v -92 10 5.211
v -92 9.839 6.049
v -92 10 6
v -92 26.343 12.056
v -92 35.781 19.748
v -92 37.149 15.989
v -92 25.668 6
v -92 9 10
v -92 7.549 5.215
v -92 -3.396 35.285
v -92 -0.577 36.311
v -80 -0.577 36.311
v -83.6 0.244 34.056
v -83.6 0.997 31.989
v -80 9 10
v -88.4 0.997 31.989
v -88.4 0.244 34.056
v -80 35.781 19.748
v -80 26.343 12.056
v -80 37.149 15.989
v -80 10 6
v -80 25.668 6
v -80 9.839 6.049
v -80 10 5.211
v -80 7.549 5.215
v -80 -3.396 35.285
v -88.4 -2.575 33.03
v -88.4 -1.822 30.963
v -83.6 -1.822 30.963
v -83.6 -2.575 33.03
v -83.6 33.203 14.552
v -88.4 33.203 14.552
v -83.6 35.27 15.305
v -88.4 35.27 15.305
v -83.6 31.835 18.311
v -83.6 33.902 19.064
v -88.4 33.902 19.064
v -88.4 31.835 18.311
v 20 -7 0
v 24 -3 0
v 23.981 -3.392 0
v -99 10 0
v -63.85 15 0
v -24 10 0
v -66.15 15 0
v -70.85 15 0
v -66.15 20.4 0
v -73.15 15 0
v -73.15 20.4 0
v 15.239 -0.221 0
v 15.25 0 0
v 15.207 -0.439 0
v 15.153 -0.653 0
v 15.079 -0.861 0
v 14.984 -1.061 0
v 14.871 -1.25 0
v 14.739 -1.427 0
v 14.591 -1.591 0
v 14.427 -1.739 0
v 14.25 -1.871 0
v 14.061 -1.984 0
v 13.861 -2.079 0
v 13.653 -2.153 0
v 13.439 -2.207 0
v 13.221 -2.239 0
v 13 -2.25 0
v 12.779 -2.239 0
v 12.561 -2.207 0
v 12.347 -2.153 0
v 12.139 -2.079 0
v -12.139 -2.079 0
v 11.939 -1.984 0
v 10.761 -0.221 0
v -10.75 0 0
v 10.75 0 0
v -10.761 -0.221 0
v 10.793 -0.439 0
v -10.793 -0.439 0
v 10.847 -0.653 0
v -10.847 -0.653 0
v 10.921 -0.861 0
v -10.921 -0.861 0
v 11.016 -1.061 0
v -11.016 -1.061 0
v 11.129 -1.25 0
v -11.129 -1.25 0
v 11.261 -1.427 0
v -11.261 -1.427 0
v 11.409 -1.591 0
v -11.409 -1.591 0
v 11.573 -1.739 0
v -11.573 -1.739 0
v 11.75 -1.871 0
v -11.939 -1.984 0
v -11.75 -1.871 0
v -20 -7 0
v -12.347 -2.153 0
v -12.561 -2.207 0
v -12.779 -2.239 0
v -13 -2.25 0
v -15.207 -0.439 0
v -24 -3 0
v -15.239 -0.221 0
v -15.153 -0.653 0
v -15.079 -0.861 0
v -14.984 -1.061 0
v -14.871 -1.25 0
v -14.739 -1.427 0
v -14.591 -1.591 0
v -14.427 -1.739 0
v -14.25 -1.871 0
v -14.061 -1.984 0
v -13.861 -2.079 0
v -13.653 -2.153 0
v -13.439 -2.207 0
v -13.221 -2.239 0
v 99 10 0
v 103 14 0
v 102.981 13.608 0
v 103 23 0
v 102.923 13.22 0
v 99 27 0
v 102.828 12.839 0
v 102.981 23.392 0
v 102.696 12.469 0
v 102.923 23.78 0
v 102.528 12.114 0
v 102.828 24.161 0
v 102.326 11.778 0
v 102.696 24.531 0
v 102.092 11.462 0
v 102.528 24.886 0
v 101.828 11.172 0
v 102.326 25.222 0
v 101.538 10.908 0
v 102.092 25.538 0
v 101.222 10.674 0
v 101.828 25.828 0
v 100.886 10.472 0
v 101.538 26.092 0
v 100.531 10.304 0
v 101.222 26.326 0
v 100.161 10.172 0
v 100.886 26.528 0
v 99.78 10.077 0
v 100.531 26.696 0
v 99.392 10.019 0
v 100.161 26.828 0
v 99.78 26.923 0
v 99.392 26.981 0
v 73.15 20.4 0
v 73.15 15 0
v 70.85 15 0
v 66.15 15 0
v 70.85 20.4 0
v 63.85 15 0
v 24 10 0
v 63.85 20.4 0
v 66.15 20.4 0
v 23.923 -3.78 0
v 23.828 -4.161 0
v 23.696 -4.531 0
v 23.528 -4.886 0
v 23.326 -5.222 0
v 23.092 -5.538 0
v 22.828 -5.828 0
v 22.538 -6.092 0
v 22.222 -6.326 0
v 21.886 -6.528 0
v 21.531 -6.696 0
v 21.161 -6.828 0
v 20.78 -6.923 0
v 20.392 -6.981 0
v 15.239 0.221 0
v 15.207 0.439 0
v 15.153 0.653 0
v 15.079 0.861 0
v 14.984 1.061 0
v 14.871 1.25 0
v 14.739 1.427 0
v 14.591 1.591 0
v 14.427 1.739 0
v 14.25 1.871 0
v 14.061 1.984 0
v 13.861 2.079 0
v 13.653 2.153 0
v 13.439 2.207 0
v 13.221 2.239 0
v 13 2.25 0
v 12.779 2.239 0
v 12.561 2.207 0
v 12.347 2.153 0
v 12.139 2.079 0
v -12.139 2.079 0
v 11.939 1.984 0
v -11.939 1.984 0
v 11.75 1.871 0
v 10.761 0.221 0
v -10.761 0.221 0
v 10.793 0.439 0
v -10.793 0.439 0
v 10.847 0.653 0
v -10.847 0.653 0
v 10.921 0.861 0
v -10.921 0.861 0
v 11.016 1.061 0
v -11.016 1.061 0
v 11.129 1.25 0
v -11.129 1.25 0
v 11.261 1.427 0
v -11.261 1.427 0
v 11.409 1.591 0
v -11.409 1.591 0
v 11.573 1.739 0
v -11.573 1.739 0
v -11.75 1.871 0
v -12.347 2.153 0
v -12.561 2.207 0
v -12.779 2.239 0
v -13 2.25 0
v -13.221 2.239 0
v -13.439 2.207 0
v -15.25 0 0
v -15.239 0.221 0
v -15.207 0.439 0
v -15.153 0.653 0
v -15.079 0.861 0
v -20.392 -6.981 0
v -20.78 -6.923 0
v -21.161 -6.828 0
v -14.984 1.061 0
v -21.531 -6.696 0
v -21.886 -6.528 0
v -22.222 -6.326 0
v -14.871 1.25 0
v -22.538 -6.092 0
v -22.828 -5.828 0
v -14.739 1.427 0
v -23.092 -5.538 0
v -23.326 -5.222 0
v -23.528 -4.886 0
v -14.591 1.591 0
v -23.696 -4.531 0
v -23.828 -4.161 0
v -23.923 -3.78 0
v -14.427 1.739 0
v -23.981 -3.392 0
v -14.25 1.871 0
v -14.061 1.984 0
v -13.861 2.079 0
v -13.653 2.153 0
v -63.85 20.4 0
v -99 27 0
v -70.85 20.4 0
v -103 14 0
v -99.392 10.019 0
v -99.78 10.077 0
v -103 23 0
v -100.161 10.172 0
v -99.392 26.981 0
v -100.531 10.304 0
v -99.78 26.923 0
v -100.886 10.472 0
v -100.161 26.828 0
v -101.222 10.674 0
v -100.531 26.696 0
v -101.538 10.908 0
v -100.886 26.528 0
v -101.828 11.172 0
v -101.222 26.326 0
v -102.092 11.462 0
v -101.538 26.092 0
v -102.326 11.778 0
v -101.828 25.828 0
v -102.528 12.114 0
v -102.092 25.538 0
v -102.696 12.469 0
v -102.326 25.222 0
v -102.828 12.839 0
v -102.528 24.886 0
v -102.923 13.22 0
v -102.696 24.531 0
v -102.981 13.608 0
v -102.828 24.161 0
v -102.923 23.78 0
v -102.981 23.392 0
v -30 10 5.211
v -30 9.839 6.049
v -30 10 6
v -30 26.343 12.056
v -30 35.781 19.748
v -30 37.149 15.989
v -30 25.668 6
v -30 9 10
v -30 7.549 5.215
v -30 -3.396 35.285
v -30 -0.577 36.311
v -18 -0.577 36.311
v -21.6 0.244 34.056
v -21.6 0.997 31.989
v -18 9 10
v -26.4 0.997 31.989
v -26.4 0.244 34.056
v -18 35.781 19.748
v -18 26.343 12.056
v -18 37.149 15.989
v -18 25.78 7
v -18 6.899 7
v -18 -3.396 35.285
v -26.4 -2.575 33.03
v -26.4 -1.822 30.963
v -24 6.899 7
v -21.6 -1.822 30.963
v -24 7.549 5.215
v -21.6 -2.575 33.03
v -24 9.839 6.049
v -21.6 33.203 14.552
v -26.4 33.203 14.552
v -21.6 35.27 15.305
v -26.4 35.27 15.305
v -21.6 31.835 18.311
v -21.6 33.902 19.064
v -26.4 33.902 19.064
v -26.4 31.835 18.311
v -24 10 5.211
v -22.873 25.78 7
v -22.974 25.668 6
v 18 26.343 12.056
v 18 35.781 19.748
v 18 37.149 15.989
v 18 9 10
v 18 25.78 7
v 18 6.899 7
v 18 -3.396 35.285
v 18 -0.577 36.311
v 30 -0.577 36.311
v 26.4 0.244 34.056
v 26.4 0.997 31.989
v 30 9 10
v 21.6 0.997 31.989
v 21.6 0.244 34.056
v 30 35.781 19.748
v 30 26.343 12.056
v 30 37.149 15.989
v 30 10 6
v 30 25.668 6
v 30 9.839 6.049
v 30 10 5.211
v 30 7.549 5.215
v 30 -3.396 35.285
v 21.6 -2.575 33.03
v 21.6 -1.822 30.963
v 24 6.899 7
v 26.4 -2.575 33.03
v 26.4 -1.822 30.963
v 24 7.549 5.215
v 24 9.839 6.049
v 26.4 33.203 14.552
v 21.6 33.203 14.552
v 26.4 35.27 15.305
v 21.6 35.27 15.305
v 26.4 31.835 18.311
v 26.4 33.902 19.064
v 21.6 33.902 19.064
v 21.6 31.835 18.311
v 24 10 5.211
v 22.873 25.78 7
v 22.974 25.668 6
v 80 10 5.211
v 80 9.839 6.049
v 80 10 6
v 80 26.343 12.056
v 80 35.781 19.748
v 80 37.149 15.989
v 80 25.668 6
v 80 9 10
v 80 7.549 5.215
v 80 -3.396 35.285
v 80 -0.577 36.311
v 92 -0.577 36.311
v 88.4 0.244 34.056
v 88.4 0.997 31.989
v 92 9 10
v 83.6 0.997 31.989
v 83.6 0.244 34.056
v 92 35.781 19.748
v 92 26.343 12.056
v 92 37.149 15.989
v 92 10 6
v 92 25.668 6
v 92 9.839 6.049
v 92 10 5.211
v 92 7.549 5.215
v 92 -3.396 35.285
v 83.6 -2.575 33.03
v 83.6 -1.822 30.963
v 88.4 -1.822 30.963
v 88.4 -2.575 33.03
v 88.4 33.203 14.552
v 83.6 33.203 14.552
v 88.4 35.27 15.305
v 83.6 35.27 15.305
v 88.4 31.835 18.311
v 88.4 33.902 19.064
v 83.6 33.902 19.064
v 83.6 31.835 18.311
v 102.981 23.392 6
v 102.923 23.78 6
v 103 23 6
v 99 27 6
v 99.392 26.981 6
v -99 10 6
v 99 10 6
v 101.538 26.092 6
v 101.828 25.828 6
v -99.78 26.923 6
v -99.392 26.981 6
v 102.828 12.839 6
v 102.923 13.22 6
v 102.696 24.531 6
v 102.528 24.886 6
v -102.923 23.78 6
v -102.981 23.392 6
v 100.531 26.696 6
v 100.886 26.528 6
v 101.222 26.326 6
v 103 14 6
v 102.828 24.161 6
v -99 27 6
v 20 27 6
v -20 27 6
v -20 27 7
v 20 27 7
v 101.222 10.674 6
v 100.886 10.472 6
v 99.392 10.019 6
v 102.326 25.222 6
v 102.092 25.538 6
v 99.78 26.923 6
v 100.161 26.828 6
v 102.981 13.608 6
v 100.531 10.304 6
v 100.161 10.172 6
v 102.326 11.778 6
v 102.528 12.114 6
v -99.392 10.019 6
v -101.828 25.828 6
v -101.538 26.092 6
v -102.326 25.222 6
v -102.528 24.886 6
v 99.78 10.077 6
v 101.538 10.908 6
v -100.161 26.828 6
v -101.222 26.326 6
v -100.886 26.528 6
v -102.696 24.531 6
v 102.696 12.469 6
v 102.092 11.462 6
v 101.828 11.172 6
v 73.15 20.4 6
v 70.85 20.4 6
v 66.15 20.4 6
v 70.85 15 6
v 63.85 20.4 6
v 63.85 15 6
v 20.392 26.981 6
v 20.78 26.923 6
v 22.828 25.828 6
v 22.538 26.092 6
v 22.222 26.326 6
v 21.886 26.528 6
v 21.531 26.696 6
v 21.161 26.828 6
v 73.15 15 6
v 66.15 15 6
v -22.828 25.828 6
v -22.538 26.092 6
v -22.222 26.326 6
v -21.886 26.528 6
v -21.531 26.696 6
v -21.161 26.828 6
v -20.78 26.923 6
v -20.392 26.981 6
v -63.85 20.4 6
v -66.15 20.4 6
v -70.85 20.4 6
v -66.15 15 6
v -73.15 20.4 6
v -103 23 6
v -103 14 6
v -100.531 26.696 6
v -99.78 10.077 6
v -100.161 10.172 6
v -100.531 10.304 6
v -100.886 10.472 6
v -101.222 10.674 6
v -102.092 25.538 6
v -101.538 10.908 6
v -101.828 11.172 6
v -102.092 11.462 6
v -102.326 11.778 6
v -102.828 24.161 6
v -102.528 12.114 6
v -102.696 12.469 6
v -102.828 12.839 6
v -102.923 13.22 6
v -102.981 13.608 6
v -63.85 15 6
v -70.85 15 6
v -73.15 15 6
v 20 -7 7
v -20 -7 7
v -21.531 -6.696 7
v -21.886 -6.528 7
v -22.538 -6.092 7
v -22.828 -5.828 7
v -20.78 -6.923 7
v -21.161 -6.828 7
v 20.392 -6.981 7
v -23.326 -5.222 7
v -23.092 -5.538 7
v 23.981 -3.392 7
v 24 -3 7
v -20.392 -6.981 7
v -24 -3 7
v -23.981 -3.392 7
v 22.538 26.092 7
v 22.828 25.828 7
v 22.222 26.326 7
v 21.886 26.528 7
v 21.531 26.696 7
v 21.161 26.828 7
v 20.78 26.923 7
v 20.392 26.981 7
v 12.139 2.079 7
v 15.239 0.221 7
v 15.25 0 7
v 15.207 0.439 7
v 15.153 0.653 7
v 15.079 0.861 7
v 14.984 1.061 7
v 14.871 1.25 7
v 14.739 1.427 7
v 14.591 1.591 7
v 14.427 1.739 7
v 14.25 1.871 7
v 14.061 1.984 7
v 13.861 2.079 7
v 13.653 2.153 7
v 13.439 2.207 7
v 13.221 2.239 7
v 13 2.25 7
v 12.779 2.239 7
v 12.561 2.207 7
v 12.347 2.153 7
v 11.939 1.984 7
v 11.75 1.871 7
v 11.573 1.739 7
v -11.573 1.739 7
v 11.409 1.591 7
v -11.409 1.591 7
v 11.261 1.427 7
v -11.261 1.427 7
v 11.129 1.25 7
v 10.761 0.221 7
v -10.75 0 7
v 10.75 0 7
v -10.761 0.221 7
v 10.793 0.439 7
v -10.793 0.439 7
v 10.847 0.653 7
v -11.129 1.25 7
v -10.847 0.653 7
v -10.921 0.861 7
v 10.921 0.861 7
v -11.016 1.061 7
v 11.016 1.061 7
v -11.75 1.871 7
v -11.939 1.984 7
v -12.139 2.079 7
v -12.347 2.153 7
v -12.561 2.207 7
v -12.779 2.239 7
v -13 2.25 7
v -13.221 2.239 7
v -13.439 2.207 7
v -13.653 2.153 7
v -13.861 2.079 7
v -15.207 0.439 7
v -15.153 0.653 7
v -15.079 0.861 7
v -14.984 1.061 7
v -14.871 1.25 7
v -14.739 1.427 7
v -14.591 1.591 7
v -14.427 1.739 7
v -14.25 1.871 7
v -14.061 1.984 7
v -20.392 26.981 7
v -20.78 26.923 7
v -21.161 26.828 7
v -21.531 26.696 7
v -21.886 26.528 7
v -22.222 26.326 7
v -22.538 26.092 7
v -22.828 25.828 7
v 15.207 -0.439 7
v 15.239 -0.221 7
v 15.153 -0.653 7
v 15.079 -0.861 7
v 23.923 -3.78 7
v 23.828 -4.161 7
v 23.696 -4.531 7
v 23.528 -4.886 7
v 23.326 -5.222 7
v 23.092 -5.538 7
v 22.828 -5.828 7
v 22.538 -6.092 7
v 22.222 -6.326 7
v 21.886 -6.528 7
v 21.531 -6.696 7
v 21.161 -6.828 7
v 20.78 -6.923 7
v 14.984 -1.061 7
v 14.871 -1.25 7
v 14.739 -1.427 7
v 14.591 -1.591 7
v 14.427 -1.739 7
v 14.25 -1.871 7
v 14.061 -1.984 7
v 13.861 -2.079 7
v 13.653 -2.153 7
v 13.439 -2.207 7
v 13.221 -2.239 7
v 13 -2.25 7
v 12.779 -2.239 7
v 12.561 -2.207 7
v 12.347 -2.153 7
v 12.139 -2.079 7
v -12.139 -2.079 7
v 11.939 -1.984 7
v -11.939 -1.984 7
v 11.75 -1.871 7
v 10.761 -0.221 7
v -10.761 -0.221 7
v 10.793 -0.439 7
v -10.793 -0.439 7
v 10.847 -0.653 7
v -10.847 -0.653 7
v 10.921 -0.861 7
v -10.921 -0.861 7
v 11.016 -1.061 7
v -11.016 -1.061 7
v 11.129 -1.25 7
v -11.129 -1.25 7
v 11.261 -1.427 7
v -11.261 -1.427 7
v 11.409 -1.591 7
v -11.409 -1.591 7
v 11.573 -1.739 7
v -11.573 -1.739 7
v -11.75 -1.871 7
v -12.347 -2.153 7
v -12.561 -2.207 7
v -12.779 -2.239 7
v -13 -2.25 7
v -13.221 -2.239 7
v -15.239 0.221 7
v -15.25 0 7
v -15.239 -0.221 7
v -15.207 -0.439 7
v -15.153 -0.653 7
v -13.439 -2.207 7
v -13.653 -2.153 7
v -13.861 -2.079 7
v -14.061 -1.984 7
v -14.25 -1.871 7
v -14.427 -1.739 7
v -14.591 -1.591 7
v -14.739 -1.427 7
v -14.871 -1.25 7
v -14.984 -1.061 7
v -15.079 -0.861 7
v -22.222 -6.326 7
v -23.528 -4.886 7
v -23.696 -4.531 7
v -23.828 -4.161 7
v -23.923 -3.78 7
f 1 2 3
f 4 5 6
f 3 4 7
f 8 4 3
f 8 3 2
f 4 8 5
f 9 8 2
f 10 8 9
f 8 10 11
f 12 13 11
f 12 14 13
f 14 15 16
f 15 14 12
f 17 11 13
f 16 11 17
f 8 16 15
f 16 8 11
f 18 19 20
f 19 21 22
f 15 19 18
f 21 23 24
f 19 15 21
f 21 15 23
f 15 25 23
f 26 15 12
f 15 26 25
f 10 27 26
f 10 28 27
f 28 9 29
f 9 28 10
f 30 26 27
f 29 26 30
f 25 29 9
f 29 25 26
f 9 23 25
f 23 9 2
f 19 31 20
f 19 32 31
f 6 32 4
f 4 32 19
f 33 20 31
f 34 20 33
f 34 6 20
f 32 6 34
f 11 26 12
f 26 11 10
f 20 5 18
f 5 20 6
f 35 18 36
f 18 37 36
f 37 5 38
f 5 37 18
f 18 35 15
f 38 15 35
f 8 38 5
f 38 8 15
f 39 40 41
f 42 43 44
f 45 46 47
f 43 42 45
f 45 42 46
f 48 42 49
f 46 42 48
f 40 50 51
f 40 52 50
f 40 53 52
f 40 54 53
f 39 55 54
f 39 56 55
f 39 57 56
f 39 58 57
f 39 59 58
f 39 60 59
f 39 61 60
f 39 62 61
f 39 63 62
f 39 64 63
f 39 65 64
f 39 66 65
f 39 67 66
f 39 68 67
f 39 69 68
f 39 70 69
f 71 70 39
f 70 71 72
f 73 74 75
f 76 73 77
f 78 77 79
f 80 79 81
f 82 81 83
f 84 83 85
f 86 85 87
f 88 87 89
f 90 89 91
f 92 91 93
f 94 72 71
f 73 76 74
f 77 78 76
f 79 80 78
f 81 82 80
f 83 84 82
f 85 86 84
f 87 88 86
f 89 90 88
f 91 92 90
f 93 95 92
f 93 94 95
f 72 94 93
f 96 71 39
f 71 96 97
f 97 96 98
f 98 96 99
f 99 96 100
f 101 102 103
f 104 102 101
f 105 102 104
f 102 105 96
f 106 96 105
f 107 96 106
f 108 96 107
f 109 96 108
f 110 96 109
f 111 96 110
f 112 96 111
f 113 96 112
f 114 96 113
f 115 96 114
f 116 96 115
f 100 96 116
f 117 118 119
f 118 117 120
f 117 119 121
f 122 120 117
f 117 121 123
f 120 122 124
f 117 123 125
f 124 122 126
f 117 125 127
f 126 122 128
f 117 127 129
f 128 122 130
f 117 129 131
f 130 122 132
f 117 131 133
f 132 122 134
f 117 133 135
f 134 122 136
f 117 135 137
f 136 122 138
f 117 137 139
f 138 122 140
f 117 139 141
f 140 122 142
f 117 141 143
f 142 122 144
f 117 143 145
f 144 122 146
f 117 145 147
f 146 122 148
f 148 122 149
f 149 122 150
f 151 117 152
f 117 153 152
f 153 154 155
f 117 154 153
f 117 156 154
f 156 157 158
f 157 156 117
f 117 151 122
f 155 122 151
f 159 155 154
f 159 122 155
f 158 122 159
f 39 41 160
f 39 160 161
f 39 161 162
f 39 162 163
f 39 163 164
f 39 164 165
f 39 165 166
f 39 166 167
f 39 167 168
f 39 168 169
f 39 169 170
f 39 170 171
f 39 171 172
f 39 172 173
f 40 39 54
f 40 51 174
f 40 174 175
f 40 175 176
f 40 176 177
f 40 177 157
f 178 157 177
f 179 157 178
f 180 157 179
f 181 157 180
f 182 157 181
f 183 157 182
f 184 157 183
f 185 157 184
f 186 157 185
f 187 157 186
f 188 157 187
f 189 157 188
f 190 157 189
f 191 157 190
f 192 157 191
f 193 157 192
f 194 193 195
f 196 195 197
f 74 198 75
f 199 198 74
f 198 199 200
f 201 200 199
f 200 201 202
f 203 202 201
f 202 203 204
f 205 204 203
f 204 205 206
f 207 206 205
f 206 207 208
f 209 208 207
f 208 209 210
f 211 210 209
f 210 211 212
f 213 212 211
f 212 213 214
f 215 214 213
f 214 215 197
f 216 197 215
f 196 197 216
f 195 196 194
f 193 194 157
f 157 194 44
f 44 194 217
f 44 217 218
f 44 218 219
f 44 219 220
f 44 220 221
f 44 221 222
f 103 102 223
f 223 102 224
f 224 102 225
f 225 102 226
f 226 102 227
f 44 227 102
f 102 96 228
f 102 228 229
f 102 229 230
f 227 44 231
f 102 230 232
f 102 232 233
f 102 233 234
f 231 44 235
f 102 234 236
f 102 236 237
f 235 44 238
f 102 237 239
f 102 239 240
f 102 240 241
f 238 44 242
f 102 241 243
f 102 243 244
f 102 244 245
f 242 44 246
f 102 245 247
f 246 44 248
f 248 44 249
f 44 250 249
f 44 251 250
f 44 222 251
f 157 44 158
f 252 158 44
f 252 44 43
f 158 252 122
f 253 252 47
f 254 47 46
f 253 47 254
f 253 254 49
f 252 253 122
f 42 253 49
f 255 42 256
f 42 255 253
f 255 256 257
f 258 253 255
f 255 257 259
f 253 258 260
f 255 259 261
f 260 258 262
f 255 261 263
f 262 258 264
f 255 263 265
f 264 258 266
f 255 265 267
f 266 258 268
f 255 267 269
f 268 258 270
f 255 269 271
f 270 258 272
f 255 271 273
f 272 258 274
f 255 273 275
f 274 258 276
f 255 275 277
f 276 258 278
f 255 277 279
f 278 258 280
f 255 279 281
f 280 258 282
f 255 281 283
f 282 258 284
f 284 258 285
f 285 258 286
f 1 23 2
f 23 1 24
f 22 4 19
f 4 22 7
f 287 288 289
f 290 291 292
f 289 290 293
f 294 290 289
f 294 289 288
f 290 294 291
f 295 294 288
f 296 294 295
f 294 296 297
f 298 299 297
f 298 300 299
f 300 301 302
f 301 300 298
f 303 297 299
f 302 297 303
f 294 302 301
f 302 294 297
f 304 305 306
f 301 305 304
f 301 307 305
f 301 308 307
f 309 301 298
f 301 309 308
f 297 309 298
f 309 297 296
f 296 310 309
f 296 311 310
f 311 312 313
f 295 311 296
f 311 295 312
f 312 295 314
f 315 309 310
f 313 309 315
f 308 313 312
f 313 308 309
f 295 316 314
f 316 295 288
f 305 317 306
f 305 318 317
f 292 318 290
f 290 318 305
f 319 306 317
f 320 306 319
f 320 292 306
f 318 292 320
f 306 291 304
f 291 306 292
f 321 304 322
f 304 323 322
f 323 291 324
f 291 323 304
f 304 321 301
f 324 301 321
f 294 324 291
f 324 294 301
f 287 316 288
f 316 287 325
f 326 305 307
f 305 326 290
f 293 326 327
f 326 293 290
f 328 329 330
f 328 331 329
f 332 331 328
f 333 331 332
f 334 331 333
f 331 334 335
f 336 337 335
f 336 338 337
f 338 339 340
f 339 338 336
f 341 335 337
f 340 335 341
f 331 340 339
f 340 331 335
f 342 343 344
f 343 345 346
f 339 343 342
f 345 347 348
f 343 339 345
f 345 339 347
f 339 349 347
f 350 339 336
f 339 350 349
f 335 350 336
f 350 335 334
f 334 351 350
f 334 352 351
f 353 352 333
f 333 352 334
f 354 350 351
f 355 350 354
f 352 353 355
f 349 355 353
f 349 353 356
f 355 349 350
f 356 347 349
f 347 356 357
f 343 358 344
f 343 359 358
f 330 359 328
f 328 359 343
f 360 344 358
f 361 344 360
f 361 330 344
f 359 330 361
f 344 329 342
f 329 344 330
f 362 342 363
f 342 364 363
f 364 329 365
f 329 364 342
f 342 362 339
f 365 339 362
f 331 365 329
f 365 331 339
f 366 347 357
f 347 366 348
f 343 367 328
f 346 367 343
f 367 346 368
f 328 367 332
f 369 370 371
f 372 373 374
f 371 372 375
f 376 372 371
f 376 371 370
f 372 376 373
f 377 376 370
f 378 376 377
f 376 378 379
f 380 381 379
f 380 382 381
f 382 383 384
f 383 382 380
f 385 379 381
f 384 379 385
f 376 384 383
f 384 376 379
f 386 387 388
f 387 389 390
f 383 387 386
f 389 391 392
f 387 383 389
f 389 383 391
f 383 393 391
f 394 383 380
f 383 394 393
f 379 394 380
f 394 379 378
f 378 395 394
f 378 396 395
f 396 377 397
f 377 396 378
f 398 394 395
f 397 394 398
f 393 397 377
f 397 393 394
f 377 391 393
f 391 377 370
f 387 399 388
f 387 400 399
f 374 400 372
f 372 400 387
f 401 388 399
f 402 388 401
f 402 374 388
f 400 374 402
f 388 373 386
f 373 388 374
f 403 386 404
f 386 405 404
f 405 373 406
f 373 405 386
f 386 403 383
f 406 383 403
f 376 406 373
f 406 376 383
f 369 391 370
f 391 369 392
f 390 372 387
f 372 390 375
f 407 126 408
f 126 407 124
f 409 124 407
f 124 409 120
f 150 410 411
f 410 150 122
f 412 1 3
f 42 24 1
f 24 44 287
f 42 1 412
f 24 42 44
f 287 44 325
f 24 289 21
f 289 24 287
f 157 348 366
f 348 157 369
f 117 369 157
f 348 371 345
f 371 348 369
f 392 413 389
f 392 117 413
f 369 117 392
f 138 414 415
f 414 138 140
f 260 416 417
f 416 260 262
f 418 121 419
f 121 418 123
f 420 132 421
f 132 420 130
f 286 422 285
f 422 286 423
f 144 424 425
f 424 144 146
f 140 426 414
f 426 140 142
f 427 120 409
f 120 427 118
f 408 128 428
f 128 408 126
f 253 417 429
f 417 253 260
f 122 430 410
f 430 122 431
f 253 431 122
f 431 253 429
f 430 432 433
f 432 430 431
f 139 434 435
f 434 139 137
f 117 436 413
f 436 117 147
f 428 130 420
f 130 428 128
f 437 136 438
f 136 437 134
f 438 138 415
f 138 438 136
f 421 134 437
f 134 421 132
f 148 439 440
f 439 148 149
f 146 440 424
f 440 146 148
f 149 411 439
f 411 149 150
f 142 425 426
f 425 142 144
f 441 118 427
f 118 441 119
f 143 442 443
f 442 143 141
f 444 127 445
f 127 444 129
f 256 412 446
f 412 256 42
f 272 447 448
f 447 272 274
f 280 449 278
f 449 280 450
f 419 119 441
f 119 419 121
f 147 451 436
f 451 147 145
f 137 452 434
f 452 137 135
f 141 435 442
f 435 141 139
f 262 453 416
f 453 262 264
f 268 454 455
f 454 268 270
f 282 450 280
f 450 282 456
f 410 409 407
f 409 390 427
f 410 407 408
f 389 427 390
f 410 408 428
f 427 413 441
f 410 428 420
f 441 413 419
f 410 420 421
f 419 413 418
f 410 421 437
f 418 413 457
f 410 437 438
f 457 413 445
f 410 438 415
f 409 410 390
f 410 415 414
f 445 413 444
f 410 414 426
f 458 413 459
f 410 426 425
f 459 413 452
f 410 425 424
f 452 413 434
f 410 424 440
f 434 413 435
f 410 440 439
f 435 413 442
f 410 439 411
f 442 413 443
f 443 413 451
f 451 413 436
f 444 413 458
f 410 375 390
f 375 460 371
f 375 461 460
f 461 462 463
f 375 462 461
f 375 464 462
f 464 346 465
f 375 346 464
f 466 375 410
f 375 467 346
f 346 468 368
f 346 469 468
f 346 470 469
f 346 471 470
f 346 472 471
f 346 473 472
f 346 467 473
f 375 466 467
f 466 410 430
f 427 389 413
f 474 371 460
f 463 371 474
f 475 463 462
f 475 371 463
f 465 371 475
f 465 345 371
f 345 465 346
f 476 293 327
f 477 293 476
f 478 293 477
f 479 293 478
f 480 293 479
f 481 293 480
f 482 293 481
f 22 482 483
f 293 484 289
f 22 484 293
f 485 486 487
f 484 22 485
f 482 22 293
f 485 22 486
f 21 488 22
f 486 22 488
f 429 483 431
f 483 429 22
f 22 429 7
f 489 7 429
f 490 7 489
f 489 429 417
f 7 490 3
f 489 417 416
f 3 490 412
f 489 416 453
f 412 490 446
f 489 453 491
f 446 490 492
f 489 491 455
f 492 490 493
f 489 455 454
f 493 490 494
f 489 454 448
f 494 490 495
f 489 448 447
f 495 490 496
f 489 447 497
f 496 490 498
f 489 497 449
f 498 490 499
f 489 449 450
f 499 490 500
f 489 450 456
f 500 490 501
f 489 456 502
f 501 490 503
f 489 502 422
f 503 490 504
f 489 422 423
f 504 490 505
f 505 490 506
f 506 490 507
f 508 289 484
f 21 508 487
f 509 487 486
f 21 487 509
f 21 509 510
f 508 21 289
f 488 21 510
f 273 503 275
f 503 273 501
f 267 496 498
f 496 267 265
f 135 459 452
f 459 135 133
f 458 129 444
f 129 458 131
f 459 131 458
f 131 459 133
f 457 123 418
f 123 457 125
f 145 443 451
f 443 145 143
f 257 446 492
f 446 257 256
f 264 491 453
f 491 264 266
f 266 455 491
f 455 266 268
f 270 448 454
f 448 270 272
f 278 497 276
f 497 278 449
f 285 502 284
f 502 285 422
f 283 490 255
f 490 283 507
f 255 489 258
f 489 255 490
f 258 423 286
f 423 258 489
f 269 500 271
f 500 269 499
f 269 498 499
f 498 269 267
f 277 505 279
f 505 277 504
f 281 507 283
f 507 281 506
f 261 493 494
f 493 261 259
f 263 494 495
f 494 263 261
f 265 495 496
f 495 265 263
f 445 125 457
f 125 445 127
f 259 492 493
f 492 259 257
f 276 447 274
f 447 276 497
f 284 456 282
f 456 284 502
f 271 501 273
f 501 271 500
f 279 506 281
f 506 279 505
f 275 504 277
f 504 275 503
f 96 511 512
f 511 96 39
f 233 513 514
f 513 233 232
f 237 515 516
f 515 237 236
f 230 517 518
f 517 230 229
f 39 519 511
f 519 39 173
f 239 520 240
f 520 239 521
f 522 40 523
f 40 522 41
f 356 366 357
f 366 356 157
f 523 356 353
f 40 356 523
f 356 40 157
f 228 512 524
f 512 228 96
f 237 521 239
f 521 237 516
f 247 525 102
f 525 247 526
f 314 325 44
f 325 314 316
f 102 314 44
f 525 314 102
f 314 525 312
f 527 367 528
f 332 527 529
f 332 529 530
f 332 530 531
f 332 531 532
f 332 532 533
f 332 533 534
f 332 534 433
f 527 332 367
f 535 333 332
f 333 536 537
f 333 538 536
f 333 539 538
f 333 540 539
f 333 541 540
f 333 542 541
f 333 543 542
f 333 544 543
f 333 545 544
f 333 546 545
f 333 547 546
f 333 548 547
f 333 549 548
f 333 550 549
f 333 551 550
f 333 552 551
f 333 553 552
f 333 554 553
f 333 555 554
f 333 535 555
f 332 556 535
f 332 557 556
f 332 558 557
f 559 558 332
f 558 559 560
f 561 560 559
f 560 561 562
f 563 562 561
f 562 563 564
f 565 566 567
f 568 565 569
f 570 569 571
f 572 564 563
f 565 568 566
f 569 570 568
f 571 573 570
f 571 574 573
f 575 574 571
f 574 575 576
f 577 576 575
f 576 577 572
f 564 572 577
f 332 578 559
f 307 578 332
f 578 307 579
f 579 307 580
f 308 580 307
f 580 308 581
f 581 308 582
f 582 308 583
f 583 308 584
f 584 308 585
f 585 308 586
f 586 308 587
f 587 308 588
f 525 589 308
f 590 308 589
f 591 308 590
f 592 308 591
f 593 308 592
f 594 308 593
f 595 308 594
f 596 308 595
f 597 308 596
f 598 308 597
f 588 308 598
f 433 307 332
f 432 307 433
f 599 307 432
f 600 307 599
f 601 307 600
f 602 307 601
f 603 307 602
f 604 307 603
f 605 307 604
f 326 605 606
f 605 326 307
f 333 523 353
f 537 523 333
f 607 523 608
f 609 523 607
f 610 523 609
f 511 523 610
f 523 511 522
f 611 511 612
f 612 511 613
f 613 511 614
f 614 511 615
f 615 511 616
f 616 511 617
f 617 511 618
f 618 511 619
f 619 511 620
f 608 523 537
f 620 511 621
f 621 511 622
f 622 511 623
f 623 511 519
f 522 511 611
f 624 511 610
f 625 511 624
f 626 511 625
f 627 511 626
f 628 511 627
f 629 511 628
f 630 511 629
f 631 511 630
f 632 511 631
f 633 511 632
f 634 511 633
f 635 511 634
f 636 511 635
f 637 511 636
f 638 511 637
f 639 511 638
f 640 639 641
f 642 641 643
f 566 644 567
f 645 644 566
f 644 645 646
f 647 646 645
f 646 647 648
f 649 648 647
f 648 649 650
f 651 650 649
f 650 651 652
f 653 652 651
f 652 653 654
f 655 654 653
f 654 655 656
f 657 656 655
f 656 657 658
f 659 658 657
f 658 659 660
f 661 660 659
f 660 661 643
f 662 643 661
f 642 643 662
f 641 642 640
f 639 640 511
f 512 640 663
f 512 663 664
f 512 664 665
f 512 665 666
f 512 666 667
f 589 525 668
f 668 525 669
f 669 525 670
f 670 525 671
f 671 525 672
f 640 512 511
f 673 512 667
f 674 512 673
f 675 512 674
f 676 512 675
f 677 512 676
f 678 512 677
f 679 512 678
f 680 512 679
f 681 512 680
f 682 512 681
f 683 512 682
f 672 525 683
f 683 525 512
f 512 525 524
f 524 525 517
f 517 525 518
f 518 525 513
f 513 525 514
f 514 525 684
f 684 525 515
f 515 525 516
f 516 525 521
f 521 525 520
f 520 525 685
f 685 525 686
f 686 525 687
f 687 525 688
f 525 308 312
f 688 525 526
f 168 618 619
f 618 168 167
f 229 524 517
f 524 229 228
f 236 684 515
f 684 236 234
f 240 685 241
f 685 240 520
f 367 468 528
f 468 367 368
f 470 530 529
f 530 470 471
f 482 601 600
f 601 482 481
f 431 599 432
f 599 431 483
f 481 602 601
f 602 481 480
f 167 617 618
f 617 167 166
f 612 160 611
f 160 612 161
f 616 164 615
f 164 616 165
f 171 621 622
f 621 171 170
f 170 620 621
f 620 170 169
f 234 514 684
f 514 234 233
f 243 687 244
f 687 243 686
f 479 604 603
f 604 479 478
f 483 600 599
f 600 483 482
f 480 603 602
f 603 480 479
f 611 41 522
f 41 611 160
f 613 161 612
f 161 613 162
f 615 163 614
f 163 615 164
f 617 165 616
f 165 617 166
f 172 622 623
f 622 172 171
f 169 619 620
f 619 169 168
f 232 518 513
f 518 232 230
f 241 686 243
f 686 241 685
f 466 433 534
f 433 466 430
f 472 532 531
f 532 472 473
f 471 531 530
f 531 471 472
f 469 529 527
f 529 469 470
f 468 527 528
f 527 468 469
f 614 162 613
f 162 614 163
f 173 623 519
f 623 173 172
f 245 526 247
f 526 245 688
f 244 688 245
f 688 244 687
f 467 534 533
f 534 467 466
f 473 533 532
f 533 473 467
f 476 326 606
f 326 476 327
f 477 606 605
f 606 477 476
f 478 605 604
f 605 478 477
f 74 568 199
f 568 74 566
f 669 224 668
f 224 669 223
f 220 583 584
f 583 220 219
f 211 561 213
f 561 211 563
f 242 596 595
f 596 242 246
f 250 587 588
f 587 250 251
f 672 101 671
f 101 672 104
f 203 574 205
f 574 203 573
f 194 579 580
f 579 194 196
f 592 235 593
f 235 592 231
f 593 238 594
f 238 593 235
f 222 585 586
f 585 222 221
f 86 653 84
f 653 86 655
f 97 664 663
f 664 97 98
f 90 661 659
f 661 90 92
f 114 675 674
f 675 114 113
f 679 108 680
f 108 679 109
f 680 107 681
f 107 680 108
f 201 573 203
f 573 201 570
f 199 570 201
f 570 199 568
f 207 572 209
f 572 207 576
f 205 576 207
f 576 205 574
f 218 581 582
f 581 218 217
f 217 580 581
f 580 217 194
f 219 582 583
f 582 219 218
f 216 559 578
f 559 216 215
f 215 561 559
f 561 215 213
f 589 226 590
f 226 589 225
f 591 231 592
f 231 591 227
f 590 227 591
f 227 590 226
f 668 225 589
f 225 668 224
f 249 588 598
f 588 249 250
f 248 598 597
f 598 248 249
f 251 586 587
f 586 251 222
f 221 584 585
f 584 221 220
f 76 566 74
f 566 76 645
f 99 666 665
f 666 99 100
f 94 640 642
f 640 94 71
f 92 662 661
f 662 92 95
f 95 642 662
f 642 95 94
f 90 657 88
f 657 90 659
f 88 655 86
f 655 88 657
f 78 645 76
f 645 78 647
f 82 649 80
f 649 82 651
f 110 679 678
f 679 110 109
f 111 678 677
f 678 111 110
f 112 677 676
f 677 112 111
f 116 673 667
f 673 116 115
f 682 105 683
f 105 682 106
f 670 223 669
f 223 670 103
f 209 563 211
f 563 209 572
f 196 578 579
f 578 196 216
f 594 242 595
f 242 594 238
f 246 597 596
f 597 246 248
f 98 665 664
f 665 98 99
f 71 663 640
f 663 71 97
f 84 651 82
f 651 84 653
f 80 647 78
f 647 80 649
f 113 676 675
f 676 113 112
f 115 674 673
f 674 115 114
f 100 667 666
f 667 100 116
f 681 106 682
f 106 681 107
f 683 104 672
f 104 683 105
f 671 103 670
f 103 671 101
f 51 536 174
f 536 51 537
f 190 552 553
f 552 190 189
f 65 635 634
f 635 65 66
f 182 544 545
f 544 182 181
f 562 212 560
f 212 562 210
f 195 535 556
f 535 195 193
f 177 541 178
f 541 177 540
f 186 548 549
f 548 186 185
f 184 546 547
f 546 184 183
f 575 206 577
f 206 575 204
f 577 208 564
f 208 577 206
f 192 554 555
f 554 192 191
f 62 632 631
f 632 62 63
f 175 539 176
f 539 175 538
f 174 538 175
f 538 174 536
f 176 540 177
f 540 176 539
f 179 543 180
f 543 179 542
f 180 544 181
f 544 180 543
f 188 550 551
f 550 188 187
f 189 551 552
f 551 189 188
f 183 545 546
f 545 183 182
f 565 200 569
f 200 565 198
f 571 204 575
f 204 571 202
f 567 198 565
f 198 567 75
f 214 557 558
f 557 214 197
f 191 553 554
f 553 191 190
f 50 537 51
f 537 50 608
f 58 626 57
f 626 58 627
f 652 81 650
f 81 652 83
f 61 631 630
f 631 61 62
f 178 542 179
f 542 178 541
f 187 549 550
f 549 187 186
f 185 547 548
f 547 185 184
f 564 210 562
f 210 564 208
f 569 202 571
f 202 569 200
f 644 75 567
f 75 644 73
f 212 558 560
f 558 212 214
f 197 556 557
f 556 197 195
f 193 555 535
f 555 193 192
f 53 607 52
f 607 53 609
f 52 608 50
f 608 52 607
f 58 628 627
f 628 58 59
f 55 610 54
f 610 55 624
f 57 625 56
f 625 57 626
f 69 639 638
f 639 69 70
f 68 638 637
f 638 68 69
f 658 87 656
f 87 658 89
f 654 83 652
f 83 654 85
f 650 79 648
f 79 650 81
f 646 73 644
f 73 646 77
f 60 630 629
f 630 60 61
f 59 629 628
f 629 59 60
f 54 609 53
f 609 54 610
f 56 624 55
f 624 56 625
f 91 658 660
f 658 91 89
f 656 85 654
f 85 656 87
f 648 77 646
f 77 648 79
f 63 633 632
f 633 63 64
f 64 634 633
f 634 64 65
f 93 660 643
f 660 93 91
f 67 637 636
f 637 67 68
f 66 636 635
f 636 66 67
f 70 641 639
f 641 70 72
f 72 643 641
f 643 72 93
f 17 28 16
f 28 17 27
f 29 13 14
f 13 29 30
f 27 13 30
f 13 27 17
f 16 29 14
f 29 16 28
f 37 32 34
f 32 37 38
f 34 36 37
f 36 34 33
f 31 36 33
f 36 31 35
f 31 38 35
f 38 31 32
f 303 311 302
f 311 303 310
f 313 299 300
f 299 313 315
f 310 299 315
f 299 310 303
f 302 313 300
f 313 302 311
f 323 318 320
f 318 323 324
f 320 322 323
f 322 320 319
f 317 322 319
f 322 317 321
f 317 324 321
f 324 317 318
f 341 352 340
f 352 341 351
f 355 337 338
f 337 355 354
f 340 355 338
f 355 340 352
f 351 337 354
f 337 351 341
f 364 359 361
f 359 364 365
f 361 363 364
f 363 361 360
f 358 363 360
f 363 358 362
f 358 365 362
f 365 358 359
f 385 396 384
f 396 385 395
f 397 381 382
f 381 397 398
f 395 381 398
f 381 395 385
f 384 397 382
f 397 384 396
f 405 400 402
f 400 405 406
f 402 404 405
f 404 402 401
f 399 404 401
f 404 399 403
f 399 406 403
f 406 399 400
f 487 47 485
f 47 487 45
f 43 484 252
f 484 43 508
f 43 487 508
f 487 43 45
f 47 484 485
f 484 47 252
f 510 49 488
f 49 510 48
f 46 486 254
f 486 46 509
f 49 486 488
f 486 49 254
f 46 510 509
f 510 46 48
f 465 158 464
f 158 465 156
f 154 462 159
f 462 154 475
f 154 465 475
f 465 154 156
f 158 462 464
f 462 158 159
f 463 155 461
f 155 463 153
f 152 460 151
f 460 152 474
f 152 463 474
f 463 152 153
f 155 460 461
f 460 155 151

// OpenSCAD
// Emil ETA V3 – společné sedlo pro dvě USB kamery Yahboom AHB015.
// Jednotky mm. Zadní plochou dolů na podložku. Kamerové hlavy stáhnout
// na čtyřech samostatných sedlech pásky šířky 2,5–3,5 mm přes oba konce.
// Středy pro tovární sponu, kloub a kabel zůstávají otevřené.
// Po dotažení zajistit ostření, změřit obě optické osy a stereo kalibrovat.
$fn = 64;
roztec = 110;
sklon = 20;

// Tiskové osy u,v,w: doprava při pohledu zepředu, vzhůru, od stěžně vpřed.
// V simulaci [X,Y,Z] = [-61+w,402+v,-u].
// Soustava sedla [u,d,h]: boční, ve směru pohledu, kolmo vzhůru.
module sedlove_osy() {
    multmatrix([[1,0,0,0], [0,-sin(sklon),cos(sklon),9],
                [0,cos(sklon),sin(sklon),10], [0,0,0,1]]) children();
}

module zaoblena_deska(u0,u1,v0,v1,w0,w1,r) {
    hull() for (u=[u0+r,u1-r],v=[v0+r,v1-r])
        translate([u,v,w0]) cylinder(h=w1-w0,r=r);
}

module podpera(u) {
    // Zadní pevná opora, spojující každé sedlo přímo s výztuhou.
    hull() {
        translate([u-6,11,0]) cube([12,14,5.6]);
        sedlove_osy() translate([u-6,-4,0]) cube([12,3.5,17]);
    }
    // Uložení na dvě vnitřní roviny; čelo hlavy i mikrofon jsou volné.
    sedlove_osy() {
        translate([u-6,-4,-3]) cube([12,32,3]);
        translate([u-6,-4,-2.5]) cube([12,4,31]);
    }
}

module stereo_lista() {
    difference() {
        union() {
            zaoblena_deska(-103,103,10,27,0,6,4);
            zaoblena_deska(-24,24,-7,27,0,7,4);
            for (stred=[-roztec/2,roztec/2], k=[-31,31]) podpera(stred+k);
        }
        // Průchozí M4 pro dva šrouby s podložkou a maticí v držáku tabletu.
        for (u=[-13,13]) translate([u,0,-1]) cylinder(h=10,d=4.5);
        // Pásky projdou dnem a horní částí zadního sedla mimo výztuhu.
        for (stred=[-roztec/2,roztec/2], k=[-31,31])
            sedlove_osy() {
                translate([stred+k-2.4,23.4,-4.0]) cube([4.8,2.2,6]);
                translate([stred+k-2.4,-6,24.3]) cube([4.8,8,2.2]);
            }
        // Párové štěrbiny pro odlehčení obou USB kabelů za příčkou.
        for (strana=[-1,1], vzdalenost=[65,72])
            translate([strana*vzdalenost-1.15,15,-1]) cube([2.3,5.4,9]);
    }
}

stereo_lista();
